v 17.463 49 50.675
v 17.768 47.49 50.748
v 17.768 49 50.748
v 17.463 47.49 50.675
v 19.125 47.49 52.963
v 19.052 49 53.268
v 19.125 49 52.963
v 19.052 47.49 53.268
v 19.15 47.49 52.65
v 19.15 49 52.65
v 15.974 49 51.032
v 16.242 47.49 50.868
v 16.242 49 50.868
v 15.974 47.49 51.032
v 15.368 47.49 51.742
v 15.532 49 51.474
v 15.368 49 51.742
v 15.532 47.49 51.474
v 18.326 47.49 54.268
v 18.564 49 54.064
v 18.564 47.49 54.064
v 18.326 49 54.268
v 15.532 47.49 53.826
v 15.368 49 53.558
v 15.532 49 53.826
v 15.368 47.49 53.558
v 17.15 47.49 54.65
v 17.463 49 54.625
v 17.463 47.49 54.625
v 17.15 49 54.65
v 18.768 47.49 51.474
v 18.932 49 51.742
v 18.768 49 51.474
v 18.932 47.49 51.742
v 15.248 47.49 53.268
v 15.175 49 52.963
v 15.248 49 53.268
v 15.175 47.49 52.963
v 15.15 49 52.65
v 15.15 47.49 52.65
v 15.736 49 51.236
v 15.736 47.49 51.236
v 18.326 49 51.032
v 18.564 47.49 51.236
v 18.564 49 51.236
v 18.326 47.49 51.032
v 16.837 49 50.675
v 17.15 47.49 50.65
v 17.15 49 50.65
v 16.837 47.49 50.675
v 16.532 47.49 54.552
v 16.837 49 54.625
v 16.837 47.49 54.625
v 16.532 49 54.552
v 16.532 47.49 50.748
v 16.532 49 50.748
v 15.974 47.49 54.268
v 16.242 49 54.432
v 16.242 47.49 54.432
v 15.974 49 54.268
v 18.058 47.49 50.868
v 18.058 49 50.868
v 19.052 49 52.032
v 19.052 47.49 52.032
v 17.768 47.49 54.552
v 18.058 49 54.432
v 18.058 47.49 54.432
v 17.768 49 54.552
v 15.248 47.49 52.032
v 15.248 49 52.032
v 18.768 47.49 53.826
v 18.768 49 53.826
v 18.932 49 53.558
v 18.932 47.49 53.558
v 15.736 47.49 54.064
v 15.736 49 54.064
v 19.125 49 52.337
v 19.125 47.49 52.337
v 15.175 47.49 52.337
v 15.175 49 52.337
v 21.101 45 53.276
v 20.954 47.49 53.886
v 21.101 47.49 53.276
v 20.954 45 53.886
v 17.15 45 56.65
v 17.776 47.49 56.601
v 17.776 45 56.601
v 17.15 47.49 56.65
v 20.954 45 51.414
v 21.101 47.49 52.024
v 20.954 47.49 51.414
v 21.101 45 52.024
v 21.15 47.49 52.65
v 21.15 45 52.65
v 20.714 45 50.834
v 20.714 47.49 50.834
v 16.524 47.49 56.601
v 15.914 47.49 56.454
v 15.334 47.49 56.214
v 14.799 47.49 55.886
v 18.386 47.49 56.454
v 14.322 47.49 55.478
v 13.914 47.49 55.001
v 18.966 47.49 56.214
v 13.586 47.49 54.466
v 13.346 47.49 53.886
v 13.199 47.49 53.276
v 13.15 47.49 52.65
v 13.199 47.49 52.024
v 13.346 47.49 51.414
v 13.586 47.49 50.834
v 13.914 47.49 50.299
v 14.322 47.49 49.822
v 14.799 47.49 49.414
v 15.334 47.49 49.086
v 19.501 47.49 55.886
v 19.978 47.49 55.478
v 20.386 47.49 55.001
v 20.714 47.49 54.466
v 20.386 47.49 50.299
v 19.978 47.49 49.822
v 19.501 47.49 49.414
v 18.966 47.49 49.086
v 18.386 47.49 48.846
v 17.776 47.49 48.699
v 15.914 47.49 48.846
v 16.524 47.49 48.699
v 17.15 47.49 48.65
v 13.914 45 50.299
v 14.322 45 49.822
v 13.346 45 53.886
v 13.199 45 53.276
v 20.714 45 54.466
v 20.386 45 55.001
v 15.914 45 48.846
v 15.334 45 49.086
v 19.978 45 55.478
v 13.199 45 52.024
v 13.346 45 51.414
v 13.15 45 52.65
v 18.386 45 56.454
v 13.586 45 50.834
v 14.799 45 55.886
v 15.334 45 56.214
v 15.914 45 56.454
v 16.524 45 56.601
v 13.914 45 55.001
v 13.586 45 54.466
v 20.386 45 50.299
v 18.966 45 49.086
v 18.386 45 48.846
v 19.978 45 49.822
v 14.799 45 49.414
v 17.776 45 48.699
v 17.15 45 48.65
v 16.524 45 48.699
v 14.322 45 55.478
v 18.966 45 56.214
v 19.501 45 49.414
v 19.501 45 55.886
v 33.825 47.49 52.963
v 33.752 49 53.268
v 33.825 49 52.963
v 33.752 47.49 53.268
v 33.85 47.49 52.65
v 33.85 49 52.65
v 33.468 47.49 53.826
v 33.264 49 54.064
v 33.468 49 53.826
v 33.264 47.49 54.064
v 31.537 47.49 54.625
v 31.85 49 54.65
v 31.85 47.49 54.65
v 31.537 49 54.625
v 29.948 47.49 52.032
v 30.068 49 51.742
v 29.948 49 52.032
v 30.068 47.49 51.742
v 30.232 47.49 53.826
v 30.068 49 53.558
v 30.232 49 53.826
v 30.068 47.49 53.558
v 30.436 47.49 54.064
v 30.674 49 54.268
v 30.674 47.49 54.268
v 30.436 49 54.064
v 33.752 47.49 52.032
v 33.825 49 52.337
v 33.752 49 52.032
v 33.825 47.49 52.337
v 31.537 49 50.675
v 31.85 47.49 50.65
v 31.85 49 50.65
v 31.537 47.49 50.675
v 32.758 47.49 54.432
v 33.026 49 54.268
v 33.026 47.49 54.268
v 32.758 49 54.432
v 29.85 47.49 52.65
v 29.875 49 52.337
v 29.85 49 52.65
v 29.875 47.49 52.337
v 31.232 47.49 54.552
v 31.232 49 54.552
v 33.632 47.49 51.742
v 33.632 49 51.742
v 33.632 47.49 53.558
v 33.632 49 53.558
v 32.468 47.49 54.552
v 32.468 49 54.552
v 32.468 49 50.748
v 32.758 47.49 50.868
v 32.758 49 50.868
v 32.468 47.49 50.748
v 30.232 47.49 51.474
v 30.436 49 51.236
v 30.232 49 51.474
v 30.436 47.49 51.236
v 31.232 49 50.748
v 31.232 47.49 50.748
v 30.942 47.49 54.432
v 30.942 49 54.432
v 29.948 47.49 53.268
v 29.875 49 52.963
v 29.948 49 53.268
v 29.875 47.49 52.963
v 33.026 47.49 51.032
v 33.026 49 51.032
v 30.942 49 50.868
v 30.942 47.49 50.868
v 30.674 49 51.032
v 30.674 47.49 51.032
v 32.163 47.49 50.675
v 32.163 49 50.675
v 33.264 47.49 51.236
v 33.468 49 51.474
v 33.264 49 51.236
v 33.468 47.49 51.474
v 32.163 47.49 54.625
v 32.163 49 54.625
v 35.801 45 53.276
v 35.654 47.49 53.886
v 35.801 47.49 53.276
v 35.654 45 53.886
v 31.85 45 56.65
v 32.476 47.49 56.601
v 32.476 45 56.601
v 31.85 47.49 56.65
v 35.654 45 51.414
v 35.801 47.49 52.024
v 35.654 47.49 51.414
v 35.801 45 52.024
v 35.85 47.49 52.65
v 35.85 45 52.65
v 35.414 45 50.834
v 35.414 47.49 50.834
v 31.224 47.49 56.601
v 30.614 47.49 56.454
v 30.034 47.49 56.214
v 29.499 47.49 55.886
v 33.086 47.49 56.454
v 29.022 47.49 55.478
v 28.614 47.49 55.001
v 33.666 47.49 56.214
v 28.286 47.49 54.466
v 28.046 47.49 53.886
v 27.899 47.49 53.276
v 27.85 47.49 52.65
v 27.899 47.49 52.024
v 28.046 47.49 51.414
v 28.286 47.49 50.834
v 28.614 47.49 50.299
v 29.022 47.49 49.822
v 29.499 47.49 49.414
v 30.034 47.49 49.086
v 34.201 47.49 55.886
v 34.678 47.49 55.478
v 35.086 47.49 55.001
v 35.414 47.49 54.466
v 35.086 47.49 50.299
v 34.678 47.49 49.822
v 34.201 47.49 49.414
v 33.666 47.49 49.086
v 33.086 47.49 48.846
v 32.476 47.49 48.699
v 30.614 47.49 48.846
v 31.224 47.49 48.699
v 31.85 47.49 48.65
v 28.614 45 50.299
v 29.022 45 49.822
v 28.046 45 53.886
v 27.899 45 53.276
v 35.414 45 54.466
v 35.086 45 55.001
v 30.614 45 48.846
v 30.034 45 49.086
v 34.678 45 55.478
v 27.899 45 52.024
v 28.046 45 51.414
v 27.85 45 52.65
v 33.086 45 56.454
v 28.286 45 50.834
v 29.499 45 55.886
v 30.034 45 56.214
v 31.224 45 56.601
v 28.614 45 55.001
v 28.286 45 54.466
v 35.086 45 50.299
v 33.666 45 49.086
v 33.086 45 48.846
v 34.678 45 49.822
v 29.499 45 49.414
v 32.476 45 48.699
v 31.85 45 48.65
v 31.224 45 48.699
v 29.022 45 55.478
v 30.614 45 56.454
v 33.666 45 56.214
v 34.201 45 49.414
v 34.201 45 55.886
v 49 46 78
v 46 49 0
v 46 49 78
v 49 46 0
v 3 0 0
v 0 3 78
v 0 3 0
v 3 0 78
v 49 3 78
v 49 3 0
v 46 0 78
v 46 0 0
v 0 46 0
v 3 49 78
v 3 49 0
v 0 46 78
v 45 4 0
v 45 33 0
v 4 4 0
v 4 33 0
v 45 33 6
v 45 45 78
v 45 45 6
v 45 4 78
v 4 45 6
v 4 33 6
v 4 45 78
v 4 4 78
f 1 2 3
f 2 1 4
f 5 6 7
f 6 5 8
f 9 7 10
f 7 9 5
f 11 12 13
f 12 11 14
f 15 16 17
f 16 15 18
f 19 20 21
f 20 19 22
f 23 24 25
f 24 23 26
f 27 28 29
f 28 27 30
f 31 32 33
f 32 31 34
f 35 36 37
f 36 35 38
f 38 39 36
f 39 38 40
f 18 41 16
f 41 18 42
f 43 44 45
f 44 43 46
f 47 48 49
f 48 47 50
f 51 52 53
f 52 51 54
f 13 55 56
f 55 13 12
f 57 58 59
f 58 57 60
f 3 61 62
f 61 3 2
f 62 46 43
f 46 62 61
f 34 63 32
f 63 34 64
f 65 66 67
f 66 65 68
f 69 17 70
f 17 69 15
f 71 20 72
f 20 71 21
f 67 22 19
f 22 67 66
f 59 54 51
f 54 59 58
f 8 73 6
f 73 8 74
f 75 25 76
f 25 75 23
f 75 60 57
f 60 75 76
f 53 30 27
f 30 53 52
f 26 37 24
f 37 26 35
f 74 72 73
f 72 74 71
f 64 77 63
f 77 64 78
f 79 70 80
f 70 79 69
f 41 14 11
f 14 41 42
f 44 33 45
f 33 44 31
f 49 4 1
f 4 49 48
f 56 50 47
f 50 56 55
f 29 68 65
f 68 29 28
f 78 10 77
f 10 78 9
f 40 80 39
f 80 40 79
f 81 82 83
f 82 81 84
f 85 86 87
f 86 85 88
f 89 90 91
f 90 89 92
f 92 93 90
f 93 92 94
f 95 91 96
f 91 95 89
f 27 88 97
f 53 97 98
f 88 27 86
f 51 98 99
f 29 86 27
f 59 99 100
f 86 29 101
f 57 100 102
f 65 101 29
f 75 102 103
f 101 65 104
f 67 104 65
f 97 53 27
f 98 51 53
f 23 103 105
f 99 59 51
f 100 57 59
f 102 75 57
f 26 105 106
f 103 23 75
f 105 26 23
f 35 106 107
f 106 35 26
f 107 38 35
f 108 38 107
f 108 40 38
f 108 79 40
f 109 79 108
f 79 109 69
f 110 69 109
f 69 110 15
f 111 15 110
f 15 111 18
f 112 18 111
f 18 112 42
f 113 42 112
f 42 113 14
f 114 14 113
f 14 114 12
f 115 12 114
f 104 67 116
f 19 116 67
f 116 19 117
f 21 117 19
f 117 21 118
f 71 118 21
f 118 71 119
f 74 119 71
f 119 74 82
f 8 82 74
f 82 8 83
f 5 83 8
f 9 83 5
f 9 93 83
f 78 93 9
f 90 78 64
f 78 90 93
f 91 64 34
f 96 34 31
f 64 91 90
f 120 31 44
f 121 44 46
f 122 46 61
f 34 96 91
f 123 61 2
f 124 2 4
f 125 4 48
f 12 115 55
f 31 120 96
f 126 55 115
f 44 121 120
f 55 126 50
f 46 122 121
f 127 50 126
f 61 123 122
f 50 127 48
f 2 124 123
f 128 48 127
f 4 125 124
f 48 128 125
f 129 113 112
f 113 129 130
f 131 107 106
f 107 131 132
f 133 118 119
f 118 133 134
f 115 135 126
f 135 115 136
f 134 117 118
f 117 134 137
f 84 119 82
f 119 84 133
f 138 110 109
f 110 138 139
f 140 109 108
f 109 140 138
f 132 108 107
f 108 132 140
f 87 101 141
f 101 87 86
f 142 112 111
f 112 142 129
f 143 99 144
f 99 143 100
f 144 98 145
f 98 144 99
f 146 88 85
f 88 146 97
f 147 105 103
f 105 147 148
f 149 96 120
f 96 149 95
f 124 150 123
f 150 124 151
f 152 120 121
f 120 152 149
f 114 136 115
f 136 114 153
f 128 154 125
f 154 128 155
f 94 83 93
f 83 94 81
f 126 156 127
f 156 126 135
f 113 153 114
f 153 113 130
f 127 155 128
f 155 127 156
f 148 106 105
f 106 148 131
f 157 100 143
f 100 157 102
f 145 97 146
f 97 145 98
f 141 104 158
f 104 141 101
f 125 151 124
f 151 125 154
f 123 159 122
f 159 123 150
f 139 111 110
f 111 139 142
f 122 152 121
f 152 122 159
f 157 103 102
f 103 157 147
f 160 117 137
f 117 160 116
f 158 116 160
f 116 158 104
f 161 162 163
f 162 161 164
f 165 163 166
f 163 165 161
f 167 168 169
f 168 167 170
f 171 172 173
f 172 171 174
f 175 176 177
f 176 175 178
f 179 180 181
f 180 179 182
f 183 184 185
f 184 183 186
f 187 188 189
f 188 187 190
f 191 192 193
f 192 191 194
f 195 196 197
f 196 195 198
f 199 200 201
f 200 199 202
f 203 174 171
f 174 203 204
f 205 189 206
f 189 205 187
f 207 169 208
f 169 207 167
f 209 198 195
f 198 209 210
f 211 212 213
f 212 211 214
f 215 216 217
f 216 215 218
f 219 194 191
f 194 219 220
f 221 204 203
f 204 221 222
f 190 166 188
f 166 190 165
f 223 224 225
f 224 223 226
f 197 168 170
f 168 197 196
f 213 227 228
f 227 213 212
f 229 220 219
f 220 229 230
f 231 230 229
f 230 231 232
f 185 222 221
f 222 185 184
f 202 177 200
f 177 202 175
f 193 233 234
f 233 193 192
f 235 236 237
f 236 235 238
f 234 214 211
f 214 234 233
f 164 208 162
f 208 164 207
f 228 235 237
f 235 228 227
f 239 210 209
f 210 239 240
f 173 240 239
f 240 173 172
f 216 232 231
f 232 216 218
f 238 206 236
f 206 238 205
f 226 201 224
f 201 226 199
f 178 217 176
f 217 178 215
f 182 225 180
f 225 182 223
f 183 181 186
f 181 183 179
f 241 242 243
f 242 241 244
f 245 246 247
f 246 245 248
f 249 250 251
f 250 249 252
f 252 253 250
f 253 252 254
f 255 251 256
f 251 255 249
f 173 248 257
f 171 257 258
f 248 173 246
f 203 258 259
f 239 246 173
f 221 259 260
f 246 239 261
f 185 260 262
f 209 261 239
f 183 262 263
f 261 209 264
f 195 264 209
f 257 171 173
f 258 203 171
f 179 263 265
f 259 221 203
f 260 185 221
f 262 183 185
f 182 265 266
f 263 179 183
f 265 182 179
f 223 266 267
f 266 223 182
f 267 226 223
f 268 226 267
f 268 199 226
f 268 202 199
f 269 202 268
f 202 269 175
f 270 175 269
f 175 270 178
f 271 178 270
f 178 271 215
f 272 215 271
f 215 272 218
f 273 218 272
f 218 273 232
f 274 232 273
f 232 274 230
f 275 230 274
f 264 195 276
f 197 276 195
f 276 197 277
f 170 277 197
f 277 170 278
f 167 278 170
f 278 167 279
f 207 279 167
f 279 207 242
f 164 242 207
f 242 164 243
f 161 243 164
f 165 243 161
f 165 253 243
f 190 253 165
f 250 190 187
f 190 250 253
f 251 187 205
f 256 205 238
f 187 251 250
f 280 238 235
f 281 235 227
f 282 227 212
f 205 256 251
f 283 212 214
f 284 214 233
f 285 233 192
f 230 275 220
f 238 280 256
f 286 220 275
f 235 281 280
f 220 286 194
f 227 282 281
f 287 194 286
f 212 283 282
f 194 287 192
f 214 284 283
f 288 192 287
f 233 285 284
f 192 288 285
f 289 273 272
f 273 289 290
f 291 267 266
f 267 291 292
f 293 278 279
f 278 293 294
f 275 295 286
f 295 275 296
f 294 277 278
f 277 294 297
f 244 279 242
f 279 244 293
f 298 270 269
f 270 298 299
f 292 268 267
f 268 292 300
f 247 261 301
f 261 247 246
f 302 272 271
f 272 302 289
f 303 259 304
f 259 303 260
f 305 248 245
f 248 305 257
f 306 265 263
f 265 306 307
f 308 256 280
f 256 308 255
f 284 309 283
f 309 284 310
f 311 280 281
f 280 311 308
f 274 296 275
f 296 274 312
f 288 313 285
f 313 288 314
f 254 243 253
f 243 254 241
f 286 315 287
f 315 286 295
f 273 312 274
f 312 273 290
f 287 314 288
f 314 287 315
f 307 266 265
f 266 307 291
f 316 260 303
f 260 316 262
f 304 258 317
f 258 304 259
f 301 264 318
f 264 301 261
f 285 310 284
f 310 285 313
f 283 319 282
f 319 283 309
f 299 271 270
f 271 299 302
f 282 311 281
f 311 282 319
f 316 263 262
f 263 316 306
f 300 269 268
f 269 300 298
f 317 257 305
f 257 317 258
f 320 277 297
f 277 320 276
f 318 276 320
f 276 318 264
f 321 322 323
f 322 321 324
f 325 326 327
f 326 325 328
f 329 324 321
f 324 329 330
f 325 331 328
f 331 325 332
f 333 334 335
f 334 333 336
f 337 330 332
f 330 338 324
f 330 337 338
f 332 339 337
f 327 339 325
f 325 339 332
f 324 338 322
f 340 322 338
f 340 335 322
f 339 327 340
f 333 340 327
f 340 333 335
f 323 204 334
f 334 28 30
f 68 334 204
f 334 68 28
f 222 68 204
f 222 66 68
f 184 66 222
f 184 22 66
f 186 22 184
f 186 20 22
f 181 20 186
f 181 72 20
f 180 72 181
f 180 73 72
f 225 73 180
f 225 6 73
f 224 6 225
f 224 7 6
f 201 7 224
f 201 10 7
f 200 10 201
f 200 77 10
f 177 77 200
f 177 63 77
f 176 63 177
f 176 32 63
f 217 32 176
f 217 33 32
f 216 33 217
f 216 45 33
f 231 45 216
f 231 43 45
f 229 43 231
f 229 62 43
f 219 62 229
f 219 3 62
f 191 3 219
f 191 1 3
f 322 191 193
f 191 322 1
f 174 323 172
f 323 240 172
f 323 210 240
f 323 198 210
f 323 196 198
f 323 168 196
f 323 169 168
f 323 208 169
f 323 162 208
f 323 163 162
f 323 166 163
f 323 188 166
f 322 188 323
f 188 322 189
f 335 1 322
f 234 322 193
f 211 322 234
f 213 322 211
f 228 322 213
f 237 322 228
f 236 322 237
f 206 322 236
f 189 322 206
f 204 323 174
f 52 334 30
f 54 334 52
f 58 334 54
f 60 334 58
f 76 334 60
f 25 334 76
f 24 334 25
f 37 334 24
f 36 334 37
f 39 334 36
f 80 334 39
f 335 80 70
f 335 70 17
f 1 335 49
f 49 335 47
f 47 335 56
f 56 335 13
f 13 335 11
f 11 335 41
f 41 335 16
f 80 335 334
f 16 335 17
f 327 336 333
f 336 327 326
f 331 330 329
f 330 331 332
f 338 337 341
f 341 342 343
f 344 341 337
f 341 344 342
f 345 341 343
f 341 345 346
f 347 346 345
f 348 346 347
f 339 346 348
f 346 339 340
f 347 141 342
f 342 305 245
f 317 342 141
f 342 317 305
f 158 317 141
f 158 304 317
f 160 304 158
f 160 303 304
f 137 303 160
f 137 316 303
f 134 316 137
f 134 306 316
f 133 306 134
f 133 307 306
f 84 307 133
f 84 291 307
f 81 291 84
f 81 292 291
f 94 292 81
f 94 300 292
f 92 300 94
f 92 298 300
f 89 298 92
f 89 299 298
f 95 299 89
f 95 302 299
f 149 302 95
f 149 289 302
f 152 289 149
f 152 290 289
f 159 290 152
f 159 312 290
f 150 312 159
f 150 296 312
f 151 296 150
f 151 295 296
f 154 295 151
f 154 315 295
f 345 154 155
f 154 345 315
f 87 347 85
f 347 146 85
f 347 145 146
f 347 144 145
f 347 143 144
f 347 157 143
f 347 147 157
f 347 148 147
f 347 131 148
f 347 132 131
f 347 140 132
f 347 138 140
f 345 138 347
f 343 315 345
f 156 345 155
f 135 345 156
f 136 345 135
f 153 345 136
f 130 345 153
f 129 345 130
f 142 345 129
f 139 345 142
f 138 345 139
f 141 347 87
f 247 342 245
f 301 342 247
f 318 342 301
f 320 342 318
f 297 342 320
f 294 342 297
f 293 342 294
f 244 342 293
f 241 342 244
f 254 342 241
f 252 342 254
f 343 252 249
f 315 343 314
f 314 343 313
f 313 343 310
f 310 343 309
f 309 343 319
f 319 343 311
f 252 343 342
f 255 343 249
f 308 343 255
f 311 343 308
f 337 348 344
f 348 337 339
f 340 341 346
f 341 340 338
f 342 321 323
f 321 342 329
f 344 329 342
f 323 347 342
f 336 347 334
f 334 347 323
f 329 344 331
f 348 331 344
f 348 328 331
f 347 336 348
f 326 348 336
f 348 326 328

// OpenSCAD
// =====================================================
// Spigen GaN 65w PD2101 Charger – Vertical Charger Mount
// =====================================================

// ---------------- Charger ----------------
charger_w = 40.4;
charger_d = 40.4;
charger_h = 75.0;
tolerance = 0.6;

// ---------------- Geometry ----------------
wall        = 4;
lip_height  = 6;
lip_depth   = 12;
chamfer     = 3;

// ---------------- Screws ----------------
screw_d = 4;
head_d  = 8;
head_h  = 2.5;

// ---------------- Derived ----------------
inner_w = charger_w + tolerance;
inner_d = charger_d + tolerance;
inner_h = charger_h;

outer_w = inner_w + wall * 2;
outer_d = inner_d + wall * 2;
outer_h = inner_h + lip_height;

// =====================================================
// Chamfered footprint (vertical edge chamfers)
// =====================================================
module chamfer_rect(w, d, c) {
    polygon([
        [ c, 0 ],
        [ w-c, 0 ],
        [ w, c ],
        [ w, d-c ],
        [ w-c, d ],
        [ c, d ],
        [ 0, d-c ],
        [ 0, c ]
    ]);
}

// =====================================================
// MODEL
// =====================================================
difference() {

    // ---------- OUTER BODY ----------
    linear_extrude(height = outer_h)
        chamfer_rect(outer_w, outer_d, chamfer);

    // ---------- INNER CAVITY ----------
    translate([wall, wall, lip_height])
        cube([inner_w, inner_d, inner_h + 1]);

    // ---------- OPEN BOTTOM (KEEP LIP) ----------
    translate([wall, wall, -1])
        cube([inner_w, inner_d - lip_depth, lip_height + 2]);

    // ---------- TOP CHAMFER ----------
    translate([-1, -1, outer_h - chamfer])
        cube([outer_w + 2, outer_d + 2, chamfer + 1]);

    // ---------- SCREW HOLES (BACK WALL ONLY) ----------
    for (x = [0.35, 0.65]) {

        // Through hole: OUTSIDE -> INSIDE (only wall thickness)
        translate([outer_w * x, outer_d + 0.01, outer_h * 0.65])
            rotate([90,0,0])
                cylinder(
                    d = screw_d,
                    h = wall + 0.5,
                    $fn = 40
                );

        // Counterbore: INSIDE -> OUTSIDE
        translate([outer_w * x, outer_d - wall - 0.01, outer_h * 0.65])
            rotate([-90,0,0])
                cylinder(
                    d = head_d,
                    h = head_h,
                    $fn = 40
                );
    }
}

// ---------- INTERNAL SUPPORT LIP ----------
translate([wall, outer_d - wall - lip_depth, 0])
    cube([inner_w, lip_depth, lip_height]);
